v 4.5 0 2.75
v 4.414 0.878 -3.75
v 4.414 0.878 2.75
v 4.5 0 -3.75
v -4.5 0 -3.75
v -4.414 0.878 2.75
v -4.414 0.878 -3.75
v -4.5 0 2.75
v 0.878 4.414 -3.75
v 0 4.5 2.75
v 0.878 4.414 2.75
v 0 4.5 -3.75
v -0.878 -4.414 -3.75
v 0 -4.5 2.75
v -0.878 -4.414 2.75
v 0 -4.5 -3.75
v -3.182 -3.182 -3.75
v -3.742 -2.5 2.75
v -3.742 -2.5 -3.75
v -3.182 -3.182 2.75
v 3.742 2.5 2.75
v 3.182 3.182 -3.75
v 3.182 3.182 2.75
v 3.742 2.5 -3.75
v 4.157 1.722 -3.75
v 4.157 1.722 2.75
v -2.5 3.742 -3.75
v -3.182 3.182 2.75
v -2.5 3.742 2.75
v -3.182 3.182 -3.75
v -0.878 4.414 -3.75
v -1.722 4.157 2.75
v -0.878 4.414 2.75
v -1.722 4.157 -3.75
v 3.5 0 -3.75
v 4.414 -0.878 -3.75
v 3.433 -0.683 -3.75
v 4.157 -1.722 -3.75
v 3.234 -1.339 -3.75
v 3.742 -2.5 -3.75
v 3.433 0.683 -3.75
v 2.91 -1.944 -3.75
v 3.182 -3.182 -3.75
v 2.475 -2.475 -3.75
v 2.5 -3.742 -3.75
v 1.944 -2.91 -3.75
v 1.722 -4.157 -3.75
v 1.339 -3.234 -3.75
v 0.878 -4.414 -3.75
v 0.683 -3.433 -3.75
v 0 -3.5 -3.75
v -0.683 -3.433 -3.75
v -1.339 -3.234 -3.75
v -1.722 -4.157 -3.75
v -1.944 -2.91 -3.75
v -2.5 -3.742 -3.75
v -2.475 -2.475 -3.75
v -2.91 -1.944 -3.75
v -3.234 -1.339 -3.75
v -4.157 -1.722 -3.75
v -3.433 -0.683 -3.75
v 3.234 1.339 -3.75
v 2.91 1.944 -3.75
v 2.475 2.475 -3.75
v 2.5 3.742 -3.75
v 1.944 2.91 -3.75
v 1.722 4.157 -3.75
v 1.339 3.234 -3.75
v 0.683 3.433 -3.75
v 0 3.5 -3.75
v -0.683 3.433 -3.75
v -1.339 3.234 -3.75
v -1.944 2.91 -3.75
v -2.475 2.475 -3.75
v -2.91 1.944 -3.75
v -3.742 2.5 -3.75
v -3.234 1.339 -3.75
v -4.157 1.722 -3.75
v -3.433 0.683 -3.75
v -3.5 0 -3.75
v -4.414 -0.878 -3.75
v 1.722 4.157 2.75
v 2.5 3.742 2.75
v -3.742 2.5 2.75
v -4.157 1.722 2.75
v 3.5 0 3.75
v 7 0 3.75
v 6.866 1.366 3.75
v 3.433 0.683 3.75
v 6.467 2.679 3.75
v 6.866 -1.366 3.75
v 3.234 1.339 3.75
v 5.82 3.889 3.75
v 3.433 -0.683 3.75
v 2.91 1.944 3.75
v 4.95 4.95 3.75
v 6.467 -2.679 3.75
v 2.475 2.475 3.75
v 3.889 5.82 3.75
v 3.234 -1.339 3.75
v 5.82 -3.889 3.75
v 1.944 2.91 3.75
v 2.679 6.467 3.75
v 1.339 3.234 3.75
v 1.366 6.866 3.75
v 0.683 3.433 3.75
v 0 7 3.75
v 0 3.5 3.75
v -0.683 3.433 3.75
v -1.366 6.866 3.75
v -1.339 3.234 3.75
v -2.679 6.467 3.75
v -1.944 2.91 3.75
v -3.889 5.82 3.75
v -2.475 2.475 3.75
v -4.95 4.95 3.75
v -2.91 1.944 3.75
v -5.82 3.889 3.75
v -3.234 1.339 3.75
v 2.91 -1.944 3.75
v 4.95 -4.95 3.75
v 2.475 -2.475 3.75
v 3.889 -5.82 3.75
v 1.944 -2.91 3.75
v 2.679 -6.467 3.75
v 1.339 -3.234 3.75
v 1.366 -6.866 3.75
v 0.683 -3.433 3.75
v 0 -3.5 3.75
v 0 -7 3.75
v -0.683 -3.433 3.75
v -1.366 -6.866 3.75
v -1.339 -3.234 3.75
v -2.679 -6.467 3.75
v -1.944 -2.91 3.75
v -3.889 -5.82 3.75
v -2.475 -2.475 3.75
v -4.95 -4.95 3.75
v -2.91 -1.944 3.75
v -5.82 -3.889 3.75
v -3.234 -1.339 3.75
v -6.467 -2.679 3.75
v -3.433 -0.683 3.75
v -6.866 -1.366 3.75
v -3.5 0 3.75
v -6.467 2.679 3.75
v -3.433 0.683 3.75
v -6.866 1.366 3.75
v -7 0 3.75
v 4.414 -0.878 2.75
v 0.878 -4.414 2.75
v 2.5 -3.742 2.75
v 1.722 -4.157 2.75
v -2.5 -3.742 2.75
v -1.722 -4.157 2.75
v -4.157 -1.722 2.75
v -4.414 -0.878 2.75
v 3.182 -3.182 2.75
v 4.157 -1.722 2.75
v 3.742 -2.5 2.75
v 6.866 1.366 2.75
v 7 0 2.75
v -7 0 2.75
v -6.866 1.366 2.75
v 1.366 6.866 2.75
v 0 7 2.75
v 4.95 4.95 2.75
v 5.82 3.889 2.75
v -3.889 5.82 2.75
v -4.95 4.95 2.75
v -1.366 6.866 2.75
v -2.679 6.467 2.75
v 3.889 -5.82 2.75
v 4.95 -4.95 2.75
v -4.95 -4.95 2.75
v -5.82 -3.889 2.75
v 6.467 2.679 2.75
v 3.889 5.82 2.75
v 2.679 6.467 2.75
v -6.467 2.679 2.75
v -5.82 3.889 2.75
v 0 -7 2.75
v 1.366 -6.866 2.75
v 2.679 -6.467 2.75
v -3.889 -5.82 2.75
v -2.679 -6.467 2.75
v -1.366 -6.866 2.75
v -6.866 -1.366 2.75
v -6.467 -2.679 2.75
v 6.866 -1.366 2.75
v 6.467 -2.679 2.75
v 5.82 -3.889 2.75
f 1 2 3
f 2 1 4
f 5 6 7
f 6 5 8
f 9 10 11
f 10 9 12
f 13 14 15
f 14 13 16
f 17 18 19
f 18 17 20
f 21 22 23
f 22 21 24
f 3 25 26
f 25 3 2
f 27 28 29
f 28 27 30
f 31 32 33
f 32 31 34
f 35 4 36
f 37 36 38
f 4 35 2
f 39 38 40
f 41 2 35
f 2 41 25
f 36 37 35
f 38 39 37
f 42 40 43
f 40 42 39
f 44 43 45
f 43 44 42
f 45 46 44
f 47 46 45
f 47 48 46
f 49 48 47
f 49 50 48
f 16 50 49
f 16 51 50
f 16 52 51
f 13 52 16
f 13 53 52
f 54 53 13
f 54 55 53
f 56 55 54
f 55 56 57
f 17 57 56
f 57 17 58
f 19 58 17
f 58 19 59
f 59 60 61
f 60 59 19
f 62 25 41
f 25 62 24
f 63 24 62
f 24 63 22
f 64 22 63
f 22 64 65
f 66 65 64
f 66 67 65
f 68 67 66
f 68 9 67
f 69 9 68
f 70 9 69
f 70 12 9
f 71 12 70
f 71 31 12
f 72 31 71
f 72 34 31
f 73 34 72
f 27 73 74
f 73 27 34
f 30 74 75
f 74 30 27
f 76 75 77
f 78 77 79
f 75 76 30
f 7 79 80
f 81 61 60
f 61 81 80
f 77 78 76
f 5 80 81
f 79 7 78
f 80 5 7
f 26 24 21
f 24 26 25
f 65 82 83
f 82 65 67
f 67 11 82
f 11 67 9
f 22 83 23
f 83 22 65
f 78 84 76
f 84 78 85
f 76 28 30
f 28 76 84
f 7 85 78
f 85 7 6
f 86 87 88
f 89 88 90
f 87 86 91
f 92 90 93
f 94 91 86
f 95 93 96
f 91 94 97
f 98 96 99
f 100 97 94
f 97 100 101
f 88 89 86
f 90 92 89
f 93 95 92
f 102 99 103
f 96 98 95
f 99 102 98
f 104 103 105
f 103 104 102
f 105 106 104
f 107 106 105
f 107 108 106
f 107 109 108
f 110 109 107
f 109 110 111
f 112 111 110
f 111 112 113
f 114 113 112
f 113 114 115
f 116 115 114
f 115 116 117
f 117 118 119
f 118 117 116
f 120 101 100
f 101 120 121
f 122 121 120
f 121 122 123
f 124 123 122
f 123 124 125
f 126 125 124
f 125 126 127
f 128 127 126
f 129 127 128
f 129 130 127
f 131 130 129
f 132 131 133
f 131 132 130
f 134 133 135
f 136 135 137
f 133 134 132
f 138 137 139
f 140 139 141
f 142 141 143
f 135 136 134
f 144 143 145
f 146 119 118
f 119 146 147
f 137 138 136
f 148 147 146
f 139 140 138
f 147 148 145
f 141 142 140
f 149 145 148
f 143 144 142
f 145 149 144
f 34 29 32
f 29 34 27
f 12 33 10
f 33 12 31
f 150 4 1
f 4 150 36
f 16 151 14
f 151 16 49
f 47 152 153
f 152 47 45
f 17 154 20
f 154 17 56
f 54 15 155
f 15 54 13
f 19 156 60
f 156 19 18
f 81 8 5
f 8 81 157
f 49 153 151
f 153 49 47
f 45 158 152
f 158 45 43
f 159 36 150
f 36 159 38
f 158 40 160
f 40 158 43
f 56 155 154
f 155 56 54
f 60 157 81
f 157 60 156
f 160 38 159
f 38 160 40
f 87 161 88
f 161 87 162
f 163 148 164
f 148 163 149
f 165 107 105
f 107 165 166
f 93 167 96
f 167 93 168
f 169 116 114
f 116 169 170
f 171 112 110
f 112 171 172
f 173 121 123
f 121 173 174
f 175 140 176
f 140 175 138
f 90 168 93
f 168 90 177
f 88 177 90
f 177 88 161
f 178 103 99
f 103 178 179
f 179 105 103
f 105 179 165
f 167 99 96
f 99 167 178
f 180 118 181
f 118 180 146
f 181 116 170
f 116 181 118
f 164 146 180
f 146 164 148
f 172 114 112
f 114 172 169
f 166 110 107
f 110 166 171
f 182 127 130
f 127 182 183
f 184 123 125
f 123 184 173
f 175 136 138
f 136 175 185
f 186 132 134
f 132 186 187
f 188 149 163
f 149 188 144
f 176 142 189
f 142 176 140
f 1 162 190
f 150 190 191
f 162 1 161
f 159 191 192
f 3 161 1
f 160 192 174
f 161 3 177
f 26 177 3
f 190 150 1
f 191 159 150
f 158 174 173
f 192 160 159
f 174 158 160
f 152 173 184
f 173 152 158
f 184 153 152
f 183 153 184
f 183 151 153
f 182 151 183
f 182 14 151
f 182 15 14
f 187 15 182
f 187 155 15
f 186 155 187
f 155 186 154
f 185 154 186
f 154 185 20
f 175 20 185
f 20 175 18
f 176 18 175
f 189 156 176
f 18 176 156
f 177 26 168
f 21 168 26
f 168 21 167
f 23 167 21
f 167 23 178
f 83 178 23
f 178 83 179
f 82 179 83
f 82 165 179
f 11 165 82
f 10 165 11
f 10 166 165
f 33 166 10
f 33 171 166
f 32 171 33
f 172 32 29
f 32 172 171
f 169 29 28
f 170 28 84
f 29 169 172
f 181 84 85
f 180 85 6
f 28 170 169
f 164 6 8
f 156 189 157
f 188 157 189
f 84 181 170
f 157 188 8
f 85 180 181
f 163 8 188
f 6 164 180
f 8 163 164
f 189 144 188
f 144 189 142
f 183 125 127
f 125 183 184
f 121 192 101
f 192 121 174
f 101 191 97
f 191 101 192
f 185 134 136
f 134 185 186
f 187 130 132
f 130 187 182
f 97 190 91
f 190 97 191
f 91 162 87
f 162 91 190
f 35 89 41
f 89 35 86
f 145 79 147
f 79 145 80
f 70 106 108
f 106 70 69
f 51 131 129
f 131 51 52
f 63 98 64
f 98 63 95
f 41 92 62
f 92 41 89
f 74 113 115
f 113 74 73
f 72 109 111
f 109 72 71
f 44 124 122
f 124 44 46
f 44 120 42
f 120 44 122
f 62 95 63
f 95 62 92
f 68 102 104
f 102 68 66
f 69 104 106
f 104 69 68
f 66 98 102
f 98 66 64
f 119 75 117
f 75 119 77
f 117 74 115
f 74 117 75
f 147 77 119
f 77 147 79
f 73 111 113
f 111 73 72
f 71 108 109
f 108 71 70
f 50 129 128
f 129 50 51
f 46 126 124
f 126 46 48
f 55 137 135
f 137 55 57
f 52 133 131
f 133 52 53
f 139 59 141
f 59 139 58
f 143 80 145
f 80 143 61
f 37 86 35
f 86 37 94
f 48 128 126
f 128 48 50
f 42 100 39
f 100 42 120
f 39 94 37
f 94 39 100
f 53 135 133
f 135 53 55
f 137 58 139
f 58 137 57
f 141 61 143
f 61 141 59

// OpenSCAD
h=15;
d=7;

difference() {
    union()
    {
    translate([0,0,0])
        cylinder(d=d+2, h=h/2, center=true, $fn=32);
    translate([0,0,(h/2-1)/2])
        cylinder(d=d*2, h=1, center=true, $fn=32);
    }
    translate([0,0,0])
        cylinder(d=d, h=h/2+1, center=true, $fn=32);
}
